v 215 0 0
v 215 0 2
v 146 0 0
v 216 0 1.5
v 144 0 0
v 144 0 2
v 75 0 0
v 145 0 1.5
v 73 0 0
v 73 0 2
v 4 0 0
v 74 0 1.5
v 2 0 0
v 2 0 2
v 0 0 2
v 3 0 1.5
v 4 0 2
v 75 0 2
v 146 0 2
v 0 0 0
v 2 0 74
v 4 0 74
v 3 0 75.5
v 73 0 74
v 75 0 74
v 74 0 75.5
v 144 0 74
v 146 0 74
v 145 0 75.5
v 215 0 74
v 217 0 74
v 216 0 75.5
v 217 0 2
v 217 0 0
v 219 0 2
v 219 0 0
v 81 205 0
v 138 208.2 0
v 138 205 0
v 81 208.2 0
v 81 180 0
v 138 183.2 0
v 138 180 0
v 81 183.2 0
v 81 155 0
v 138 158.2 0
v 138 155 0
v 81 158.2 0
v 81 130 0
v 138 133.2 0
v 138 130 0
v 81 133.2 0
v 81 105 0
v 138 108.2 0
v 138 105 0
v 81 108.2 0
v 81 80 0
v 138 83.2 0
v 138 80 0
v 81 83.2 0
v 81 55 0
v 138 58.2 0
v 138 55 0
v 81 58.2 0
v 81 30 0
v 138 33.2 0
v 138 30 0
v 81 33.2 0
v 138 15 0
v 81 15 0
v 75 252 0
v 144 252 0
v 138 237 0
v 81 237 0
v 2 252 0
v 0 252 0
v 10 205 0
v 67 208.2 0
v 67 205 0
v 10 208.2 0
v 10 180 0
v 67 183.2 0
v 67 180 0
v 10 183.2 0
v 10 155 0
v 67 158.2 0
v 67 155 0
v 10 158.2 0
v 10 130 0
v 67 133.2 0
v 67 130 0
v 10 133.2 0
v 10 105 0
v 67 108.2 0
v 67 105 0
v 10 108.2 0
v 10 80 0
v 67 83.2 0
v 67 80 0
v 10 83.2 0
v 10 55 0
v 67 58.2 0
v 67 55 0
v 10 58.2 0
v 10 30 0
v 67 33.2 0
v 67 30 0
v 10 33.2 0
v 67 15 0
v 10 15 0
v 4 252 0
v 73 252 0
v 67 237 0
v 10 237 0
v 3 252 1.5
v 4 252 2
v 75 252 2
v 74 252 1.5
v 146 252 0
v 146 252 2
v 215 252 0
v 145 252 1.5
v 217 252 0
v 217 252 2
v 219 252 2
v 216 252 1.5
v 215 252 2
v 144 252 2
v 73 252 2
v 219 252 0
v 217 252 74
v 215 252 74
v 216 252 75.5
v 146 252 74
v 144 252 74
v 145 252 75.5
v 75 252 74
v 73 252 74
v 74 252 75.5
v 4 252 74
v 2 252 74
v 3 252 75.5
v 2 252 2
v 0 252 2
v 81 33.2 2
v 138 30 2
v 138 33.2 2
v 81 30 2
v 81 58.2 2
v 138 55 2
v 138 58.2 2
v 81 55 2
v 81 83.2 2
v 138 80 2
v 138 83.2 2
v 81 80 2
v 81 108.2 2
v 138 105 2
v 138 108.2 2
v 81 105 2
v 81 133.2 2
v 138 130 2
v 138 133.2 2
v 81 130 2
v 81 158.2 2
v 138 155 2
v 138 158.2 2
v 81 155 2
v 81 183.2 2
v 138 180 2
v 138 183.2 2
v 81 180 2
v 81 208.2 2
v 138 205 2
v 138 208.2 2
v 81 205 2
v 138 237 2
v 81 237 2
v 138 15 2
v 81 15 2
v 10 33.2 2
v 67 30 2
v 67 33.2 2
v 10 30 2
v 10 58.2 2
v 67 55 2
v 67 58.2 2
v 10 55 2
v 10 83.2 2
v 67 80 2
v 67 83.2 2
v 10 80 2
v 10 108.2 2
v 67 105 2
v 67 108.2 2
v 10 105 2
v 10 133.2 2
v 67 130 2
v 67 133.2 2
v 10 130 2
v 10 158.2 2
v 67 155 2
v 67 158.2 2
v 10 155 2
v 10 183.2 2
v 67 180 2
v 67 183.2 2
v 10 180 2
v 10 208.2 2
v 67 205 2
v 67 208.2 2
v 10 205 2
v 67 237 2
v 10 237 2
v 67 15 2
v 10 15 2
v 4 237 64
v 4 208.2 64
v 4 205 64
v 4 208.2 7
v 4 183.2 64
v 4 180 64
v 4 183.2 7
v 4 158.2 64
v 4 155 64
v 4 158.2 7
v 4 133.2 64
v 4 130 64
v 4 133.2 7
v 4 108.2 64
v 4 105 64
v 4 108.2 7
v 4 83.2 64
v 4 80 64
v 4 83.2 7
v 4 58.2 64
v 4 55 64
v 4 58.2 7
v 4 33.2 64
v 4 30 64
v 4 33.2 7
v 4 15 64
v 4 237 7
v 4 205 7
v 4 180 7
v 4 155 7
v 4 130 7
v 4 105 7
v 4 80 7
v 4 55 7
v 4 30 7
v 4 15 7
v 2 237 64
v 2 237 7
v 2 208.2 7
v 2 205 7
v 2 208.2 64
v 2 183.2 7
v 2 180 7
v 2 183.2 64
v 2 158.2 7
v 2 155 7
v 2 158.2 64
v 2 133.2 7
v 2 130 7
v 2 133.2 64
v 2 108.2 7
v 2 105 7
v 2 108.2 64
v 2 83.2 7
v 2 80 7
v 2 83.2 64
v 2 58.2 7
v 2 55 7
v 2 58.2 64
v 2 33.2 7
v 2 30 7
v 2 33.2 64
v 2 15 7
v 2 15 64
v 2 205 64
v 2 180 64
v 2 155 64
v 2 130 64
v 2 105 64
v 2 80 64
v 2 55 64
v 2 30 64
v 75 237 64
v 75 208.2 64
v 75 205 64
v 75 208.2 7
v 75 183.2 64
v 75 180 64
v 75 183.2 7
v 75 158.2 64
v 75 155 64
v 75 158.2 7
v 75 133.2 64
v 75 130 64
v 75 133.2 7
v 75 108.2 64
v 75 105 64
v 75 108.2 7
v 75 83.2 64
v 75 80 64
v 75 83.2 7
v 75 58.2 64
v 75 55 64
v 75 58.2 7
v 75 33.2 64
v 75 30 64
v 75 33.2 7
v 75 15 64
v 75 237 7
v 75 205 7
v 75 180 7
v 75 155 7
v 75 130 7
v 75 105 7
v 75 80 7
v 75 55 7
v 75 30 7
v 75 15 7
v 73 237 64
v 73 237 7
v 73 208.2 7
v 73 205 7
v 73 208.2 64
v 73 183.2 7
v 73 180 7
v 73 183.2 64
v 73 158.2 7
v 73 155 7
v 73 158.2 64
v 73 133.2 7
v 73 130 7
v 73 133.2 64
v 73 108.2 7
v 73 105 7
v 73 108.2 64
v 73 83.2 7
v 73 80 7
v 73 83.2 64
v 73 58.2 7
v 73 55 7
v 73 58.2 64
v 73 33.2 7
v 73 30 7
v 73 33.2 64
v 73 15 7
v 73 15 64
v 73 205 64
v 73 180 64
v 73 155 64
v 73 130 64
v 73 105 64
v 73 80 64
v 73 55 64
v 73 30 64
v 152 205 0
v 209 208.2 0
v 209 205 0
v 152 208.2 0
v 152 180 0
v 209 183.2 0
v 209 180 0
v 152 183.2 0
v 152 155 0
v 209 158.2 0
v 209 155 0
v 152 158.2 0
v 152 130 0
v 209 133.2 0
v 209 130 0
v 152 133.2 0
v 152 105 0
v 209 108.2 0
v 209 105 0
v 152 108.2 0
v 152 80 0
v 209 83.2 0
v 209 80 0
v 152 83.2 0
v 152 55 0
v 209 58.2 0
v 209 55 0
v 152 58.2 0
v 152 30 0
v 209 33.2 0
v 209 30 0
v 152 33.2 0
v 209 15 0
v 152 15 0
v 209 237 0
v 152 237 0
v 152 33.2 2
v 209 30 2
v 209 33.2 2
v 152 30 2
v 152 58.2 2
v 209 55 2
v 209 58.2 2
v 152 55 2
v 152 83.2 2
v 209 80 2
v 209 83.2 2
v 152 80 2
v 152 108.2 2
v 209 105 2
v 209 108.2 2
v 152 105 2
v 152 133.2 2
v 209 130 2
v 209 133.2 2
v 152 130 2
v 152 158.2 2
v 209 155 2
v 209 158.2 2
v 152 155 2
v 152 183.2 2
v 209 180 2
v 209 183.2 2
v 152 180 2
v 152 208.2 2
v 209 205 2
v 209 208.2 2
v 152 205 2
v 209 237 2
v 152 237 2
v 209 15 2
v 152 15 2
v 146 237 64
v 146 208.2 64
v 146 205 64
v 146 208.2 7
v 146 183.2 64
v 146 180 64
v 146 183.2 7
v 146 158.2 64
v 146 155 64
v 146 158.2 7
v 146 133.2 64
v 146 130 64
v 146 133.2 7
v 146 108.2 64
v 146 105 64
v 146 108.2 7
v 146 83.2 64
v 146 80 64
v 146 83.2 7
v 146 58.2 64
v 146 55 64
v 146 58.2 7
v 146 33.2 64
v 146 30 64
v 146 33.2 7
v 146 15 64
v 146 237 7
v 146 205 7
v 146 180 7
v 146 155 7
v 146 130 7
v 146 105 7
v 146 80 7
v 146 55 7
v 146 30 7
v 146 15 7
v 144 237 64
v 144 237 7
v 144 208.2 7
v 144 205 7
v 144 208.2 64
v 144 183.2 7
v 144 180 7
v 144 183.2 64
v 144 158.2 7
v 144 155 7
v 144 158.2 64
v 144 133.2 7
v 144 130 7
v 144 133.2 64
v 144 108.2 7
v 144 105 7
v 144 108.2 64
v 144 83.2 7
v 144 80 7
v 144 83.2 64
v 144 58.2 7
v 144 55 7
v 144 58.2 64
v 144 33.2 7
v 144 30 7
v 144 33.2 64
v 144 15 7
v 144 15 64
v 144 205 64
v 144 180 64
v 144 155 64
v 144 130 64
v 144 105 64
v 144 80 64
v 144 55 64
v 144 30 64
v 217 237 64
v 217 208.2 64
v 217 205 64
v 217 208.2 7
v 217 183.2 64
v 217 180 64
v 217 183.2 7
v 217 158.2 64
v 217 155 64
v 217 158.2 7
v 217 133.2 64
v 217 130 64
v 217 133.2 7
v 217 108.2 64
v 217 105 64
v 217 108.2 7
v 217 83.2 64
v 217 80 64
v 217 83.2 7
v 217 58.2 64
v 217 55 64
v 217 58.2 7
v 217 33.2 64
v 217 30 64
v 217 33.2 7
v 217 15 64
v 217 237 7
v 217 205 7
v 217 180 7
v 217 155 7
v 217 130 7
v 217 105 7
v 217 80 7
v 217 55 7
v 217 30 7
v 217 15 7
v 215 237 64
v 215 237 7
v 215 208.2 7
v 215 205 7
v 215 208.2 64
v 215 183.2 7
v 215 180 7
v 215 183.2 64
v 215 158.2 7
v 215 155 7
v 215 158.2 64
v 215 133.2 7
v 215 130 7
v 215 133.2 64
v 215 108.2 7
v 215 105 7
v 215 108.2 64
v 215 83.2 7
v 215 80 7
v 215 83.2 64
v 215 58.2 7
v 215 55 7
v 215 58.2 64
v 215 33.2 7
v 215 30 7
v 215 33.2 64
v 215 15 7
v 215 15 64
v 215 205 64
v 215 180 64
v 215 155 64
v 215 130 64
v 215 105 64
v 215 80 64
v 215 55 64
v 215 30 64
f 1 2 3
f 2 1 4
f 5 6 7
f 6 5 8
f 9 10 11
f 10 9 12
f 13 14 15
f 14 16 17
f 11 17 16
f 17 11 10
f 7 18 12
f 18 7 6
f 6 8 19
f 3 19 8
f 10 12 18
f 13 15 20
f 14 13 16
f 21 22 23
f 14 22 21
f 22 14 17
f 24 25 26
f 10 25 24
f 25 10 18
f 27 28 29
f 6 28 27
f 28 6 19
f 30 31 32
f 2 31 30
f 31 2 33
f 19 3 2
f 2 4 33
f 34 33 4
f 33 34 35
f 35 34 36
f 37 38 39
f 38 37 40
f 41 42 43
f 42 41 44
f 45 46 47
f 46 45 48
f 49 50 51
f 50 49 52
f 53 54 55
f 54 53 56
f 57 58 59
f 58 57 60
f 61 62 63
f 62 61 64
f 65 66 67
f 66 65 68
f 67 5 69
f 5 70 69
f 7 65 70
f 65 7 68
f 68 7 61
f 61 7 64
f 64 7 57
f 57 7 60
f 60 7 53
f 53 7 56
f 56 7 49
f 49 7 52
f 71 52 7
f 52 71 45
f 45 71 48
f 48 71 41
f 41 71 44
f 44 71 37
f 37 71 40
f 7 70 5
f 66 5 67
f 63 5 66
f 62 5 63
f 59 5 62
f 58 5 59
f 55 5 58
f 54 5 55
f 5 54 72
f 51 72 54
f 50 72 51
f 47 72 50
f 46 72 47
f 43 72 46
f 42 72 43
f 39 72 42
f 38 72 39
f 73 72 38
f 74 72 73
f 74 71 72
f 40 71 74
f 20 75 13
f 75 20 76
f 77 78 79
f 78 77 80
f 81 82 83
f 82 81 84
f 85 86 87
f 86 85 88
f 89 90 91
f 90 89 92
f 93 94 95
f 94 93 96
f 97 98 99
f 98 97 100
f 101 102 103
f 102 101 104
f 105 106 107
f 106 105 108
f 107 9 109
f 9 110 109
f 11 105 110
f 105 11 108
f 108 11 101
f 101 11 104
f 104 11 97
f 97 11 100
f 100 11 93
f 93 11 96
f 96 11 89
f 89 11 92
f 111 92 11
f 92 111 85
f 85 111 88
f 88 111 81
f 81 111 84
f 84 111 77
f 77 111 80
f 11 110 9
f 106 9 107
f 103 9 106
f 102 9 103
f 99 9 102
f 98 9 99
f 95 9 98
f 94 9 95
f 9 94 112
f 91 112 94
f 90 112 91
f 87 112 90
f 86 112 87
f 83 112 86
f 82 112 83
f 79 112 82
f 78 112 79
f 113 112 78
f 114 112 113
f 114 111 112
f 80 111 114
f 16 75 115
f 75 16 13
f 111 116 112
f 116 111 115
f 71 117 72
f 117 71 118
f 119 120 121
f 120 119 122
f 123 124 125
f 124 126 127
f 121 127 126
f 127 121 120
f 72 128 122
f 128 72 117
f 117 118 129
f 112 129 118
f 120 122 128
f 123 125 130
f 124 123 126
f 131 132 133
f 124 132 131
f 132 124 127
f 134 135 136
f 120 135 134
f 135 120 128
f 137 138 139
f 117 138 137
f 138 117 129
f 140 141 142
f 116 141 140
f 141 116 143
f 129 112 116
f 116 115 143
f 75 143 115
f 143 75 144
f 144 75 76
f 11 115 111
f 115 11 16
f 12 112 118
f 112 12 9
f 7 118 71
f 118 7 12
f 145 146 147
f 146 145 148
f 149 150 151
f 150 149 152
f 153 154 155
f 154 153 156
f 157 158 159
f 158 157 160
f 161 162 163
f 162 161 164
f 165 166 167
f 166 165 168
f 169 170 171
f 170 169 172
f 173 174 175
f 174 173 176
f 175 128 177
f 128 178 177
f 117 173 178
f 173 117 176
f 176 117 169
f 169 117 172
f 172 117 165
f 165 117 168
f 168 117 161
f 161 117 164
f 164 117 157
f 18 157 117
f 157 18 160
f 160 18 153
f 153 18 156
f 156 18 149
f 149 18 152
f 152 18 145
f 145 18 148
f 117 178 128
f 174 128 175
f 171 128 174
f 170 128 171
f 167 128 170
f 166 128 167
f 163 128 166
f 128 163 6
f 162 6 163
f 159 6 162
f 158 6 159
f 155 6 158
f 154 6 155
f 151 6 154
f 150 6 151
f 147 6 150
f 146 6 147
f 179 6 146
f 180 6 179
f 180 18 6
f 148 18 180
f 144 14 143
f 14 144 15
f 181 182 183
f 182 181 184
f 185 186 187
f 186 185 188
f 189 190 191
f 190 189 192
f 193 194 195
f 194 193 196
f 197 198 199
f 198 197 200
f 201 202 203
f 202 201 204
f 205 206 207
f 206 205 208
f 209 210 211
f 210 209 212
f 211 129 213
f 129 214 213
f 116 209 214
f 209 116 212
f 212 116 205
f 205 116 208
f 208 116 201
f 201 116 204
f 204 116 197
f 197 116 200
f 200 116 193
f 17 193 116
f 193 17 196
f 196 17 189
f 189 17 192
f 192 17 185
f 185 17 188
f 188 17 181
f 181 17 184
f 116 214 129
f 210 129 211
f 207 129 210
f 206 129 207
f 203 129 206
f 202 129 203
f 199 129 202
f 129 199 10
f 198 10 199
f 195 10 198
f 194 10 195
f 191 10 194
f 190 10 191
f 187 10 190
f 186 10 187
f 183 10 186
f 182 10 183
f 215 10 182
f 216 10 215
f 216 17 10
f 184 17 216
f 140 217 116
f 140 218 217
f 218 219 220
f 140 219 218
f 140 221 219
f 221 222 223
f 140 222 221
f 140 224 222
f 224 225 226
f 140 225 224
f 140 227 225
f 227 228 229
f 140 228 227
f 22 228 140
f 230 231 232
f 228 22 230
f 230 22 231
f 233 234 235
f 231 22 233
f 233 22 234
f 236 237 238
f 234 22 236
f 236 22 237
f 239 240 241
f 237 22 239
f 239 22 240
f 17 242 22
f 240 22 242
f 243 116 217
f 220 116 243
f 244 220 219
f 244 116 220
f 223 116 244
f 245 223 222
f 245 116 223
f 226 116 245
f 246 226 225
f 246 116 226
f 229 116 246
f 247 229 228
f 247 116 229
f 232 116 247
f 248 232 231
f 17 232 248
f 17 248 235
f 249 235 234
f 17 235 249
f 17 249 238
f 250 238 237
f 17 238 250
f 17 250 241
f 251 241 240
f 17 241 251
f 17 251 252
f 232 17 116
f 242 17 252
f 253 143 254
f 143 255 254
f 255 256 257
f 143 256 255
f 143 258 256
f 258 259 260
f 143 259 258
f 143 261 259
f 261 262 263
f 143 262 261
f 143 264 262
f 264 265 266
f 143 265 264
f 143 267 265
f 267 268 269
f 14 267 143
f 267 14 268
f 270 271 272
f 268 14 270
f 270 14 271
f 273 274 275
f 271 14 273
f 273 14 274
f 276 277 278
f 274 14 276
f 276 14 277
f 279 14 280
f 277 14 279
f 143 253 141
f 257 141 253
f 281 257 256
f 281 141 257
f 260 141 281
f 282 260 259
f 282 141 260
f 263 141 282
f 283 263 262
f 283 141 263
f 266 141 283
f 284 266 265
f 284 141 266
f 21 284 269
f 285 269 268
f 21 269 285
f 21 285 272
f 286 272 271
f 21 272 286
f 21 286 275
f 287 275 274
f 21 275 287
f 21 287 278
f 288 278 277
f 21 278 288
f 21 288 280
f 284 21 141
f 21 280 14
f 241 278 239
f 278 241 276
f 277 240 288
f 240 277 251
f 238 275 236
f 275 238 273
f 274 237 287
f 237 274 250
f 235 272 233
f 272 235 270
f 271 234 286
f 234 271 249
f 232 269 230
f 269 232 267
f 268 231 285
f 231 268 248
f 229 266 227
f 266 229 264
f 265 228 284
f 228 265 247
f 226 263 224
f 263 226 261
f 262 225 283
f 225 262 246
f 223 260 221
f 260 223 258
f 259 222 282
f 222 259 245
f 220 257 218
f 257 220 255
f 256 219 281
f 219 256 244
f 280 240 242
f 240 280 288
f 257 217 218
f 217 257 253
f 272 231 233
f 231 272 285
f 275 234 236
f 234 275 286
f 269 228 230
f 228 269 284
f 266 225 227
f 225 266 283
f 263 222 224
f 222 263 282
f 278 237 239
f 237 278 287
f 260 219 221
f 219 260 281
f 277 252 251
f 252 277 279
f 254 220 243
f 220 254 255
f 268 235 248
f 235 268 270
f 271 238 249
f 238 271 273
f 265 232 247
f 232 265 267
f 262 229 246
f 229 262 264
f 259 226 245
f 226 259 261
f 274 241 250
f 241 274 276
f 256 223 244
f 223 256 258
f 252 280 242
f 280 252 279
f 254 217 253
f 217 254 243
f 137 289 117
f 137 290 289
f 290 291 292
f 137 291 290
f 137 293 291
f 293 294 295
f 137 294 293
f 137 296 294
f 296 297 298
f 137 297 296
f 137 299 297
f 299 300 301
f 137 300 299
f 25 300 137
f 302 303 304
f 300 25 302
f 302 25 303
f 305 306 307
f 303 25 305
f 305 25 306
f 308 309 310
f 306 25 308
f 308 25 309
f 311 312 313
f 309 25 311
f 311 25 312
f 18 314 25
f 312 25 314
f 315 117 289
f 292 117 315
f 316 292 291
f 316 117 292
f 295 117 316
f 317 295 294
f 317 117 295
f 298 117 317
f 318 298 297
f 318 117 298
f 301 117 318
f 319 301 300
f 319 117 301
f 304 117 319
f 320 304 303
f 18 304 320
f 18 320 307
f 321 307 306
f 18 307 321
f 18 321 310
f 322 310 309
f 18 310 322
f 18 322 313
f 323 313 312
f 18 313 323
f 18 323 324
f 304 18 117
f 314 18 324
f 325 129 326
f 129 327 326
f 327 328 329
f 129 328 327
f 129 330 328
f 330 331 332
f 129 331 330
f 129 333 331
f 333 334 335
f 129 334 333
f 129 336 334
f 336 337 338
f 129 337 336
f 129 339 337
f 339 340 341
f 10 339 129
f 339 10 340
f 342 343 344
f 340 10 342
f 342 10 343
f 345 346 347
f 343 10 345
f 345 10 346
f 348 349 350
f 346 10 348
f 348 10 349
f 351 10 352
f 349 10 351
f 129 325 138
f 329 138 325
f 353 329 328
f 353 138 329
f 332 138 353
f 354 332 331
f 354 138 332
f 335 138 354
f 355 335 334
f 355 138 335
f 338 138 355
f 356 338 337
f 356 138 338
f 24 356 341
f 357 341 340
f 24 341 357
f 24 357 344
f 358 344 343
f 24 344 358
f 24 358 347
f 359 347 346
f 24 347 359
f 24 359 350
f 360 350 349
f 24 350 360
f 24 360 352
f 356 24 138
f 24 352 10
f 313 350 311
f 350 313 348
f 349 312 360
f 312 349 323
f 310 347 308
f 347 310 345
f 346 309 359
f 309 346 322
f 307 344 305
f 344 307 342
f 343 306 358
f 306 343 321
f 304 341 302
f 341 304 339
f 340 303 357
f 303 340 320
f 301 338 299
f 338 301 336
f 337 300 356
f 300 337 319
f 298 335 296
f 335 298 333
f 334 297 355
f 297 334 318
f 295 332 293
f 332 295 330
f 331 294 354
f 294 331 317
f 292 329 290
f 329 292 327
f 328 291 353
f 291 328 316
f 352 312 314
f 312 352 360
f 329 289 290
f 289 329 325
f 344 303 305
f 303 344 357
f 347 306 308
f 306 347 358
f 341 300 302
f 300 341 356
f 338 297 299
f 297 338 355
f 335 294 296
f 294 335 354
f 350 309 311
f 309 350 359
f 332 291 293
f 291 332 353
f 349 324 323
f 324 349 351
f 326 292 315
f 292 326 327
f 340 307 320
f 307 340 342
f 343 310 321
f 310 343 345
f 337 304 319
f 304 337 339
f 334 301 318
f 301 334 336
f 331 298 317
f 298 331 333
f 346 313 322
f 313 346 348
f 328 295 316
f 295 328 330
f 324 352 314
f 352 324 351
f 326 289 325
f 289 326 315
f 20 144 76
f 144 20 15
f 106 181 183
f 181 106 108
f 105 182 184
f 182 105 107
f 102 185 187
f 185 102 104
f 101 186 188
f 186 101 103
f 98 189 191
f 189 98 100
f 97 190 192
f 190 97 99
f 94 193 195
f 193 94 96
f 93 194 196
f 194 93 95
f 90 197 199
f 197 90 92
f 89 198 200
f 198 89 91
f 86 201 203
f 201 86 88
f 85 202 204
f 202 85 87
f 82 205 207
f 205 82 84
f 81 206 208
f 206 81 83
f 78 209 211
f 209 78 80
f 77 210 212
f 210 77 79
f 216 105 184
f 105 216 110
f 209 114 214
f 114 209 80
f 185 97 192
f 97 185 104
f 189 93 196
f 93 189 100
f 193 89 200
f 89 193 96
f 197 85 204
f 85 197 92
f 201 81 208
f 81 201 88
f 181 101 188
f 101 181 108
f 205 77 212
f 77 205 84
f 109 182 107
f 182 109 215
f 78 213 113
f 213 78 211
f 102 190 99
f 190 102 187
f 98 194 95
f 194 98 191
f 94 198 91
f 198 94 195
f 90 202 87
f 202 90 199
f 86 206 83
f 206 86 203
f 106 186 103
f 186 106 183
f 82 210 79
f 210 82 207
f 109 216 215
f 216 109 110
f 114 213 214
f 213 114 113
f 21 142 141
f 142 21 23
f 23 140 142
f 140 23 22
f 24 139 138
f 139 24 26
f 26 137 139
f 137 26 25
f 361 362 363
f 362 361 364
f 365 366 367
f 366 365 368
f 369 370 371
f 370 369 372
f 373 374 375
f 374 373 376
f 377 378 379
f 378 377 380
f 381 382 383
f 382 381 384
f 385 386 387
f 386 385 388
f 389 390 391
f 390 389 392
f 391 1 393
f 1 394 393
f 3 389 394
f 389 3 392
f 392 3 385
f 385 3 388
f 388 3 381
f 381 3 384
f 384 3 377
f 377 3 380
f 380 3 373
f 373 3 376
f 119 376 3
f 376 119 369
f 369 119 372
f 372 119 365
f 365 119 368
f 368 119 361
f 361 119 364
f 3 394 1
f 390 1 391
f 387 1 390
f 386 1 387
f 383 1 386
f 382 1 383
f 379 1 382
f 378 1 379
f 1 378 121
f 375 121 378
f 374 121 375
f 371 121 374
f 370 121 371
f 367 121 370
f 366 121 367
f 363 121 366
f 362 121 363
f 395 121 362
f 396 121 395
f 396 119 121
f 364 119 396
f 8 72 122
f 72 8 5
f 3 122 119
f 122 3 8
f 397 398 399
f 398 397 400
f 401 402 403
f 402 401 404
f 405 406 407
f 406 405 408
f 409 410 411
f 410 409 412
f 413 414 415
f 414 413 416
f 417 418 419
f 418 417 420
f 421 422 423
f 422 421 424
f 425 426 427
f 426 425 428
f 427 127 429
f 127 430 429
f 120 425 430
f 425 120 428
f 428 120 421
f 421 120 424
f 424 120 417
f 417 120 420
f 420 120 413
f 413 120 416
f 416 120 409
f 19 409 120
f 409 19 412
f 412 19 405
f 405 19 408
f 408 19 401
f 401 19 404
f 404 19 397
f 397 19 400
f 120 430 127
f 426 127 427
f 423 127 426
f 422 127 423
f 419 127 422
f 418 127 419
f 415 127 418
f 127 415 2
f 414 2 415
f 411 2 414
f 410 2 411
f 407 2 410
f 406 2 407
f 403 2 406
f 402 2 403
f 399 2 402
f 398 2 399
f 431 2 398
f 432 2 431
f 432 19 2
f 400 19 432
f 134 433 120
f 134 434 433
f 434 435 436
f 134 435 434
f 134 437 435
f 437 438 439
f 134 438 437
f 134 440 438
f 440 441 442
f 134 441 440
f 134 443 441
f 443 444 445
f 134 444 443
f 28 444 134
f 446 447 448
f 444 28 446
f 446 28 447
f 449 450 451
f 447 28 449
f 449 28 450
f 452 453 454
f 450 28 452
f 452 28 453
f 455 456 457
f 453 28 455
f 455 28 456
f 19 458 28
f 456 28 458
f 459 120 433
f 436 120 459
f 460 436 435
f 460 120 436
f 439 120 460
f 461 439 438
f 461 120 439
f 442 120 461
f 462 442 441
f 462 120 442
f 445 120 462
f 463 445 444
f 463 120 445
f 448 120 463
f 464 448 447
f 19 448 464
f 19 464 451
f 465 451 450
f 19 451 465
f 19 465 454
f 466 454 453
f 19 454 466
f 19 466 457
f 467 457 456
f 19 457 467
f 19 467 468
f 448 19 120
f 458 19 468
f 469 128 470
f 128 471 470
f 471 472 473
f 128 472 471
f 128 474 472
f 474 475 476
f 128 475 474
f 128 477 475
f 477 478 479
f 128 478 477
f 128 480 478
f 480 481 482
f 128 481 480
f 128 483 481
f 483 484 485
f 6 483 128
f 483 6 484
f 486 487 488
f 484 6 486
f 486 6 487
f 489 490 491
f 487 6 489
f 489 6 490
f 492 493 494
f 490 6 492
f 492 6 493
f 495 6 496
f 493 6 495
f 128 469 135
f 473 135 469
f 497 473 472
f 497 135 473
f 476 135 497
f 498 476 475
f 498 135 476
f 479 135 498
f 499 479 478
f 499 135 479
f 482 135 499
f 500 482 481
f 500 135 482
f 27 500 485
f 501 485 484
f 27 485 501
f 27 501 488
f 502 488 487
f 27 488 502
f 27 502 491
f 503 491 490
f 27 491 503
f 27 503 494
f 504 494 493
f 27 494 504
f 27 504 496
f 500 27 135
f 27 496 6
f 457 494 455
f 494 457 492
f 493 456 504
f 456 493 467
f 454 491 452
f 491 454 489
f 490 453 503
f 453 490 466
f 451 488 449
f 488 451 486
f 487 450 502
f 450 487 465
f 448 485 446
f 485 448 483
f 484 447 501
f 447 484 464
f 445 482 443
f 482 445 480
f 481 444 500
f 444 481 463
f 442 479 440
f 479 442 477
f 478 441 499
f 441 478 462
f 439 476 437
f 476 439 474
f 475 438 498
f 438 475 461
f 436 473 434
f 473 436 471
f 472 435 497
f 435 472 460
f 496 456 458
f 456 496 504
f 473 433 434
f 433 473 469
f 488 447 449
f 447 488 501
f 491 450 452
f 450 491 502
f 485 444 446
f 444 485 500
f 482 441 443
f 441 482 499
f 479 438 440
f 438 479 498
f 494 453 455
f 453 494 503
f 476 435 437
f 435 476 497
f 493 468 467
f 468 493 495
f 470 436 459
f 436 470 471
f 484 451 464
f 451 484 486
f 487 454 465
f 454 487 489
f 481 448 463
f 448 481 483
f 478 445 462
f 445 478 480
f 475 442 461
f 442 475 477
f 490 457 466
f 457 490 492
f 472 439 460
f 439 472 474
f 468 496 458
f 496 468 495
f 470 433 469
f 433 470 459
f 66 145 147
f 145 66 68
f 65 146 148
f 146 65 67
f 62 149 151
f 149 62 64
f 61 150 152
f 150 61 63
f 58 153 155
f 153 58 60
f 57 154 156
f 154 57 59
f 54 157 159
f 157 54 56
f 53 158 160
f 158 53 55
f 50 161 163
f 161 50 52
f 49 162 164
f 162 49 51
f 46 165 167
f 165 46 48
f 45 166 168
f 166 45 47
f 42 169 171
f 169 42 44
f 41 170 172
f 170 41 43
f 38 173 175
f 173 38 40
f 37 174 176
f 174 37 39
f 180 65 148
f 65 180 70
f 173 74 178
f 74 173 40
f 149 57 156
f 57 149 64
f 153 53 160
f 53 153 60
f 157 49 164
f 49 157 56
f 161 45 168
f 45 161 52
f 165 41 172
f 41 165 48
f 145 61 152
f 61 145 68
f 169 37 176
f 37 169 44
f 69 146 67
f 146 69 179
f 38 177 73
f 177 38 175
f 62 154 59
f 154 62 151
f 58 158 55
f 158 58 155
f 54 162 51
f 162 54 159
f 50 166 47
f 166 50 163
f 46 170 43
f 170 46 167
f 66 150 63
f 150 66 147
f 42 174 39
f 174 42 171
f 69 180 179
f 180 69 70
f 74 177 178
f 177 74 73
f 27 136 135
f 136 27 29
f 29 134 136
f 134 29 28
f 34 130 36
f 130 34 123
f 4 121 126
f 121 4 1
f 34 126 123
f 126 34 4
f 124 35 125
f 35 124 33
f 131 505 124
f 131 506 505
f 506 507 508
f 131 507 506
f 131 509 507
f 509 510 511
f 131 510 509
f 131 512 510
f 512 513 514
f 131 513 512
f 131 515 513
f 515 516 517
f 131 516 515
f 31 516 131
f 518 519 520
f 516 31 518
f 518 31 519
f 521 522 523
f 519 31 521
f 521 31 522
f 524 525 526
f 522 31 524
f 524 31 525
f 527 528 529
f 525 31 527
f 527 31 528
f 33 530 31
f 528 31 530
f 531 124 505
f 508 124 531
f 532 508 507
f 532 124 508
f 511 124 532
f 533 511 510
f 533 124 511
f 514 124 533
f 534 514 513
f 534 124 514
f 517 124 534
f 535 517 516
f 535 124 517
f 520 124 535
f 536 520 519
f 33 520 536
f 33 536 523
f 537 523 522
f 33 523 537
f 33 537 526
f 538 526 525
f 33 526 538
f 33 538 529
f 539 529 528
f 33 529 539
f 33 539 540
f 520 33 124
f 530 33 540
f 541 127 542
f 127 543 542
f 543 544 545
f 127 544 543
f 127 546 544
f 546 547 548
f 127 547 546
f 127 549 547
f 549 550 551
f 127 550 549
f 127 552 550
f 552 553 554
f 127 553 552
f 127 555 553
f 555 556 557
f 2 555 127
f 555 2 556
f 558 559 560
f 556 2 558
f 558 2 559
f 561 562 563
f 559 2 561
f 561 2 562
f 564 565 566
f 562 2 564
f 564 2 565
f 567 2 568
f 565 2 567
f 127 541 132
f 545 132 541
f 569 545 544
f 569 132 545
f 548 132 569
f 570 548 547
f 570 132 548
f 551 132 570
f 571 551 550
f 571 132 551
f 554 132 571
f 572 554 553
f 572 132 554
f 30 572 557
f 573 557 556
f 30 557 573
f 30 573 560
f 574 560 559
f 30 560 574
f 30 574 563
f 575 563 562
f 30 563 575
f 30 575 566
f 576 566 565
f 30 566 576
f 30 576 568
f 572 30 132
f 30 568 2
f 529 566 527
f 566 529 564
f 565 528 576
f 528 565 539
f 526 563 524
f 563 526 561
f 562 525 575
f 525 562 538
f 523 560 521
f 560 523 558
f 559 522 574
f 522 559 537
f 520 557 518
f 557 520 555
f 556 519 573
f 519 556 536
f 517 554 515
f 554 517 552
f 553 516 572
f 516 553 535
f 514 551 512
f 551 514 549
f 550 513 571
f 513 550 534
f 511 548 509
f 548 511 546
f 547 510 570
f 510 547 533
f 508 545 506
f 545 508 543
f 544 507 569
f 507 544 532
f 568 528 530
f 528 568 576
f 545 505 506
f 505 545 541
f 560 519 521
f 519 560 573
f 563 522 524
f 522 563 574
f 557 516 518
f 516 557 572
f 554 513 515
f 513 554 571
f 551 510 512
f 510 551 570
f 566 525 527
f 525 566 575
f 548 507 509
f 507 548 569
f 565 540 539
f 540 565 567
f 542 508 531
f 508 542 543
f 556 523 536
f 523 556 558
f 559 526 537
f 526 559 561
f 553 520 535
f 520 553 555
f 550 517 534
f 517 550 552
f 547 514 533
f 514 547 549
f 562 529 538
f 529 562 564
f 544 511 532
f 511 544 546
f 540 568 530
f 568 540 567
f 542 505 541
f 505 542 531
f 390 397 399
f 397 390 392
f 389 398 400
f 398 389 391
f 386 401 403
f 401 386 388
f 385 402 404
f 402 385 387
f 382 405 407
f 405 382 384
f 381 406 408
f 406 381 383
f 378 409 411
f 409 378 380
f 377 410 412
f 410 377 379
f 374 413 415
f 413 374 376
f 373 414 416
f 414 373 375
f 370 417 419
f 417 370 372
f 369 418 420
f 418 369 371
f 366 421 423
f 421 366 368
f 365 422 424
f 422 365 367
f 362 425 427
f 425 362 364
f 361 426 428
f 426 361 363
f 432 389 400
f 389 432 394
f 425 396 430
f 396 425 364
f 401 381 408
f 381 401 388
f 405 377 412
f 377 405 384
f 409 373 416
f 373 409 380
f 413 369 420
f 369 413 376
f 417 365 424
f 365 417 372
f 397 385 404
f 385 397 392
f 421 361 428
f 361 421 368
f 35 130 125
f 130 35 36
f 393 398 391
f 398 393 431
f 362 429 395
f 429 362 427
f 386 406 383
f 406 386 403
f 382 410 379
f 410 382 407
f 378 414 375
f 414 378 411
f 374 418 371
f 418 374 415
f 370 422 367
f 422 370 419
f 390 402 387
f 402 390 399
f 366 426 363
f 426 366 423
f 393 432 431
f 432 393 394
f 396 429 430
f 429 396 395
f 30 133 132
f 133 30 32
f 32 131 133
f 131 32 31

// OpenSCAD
triangle_base = 2;
triangle_height = 1.5;
thickness = 2;

module plane(plane_top_width, plane_bottom_width, plane_width) {
    for(i = [30:25:224]) {
        translate([0, i, 0])
        color("red")
        cube([plane_width, 3.2, thickness]);
    }
    color("pink")
    translate([0, 0, 0])
    cube([plane_bottom_width,252,thickness]);
    
    translate([67, 0, 0])
    cube([plane_top_width,252,thickness]);
    
    color("blue")
    translate([0, 0, 0])
    cube([plane_width,15,thickness]);
    
    color("blue")
    translate([0, 237, 0])
    cube([plane_width,15,thickness]);
}

module plane_with_grooves() {
    difference() {
        plane(10, 10, 75);
        union() {
            color("green")
            rotate([-90, 180, 0])
            translate([-4, 0, 0])
            linear_extrude(252)
                polygon(points = [[0, 0], [triangle_base, 0], [triangle_base/2, triangle_height]]);

            color("green")
            rotate([-90, 180, 0])
            translate([-75, 0, 0])
            linear_extrude(252)
                polygon(points = [[0, 0], [triangle_base, 0], [triangle_base/2, triangle_height]]);
        }
    }
}

module unit() {
    rotate([0, 90, 0])
    translate([-74, 0, 2])
    plane(5, 10, 72);

    rotate([0, 90, 0])
    translate([-74, 0, 73])
    plane(5, 10, 72);

    plane_with_grooves();
    
    color("orange")
            rotate([-90, 180, 0])
            translate([-4, 74, 0])
            linear_extrude(252)
                polygon(points = [[0, 0], [triangle_base, 0], [triangle_base/2, triangle_height]]);

    color("orange")
            rotate([-90, 180, 0])
            translate([-75, 74, 0])
            linear_extrude(252)
                polygon(points = [[0, 0], [triangle_base, 0], [triangle_base/2, triangle_height]]);
}

unit();

translate([71, 0, 0])
unit();

translate([142, 0, 0])
unit();
